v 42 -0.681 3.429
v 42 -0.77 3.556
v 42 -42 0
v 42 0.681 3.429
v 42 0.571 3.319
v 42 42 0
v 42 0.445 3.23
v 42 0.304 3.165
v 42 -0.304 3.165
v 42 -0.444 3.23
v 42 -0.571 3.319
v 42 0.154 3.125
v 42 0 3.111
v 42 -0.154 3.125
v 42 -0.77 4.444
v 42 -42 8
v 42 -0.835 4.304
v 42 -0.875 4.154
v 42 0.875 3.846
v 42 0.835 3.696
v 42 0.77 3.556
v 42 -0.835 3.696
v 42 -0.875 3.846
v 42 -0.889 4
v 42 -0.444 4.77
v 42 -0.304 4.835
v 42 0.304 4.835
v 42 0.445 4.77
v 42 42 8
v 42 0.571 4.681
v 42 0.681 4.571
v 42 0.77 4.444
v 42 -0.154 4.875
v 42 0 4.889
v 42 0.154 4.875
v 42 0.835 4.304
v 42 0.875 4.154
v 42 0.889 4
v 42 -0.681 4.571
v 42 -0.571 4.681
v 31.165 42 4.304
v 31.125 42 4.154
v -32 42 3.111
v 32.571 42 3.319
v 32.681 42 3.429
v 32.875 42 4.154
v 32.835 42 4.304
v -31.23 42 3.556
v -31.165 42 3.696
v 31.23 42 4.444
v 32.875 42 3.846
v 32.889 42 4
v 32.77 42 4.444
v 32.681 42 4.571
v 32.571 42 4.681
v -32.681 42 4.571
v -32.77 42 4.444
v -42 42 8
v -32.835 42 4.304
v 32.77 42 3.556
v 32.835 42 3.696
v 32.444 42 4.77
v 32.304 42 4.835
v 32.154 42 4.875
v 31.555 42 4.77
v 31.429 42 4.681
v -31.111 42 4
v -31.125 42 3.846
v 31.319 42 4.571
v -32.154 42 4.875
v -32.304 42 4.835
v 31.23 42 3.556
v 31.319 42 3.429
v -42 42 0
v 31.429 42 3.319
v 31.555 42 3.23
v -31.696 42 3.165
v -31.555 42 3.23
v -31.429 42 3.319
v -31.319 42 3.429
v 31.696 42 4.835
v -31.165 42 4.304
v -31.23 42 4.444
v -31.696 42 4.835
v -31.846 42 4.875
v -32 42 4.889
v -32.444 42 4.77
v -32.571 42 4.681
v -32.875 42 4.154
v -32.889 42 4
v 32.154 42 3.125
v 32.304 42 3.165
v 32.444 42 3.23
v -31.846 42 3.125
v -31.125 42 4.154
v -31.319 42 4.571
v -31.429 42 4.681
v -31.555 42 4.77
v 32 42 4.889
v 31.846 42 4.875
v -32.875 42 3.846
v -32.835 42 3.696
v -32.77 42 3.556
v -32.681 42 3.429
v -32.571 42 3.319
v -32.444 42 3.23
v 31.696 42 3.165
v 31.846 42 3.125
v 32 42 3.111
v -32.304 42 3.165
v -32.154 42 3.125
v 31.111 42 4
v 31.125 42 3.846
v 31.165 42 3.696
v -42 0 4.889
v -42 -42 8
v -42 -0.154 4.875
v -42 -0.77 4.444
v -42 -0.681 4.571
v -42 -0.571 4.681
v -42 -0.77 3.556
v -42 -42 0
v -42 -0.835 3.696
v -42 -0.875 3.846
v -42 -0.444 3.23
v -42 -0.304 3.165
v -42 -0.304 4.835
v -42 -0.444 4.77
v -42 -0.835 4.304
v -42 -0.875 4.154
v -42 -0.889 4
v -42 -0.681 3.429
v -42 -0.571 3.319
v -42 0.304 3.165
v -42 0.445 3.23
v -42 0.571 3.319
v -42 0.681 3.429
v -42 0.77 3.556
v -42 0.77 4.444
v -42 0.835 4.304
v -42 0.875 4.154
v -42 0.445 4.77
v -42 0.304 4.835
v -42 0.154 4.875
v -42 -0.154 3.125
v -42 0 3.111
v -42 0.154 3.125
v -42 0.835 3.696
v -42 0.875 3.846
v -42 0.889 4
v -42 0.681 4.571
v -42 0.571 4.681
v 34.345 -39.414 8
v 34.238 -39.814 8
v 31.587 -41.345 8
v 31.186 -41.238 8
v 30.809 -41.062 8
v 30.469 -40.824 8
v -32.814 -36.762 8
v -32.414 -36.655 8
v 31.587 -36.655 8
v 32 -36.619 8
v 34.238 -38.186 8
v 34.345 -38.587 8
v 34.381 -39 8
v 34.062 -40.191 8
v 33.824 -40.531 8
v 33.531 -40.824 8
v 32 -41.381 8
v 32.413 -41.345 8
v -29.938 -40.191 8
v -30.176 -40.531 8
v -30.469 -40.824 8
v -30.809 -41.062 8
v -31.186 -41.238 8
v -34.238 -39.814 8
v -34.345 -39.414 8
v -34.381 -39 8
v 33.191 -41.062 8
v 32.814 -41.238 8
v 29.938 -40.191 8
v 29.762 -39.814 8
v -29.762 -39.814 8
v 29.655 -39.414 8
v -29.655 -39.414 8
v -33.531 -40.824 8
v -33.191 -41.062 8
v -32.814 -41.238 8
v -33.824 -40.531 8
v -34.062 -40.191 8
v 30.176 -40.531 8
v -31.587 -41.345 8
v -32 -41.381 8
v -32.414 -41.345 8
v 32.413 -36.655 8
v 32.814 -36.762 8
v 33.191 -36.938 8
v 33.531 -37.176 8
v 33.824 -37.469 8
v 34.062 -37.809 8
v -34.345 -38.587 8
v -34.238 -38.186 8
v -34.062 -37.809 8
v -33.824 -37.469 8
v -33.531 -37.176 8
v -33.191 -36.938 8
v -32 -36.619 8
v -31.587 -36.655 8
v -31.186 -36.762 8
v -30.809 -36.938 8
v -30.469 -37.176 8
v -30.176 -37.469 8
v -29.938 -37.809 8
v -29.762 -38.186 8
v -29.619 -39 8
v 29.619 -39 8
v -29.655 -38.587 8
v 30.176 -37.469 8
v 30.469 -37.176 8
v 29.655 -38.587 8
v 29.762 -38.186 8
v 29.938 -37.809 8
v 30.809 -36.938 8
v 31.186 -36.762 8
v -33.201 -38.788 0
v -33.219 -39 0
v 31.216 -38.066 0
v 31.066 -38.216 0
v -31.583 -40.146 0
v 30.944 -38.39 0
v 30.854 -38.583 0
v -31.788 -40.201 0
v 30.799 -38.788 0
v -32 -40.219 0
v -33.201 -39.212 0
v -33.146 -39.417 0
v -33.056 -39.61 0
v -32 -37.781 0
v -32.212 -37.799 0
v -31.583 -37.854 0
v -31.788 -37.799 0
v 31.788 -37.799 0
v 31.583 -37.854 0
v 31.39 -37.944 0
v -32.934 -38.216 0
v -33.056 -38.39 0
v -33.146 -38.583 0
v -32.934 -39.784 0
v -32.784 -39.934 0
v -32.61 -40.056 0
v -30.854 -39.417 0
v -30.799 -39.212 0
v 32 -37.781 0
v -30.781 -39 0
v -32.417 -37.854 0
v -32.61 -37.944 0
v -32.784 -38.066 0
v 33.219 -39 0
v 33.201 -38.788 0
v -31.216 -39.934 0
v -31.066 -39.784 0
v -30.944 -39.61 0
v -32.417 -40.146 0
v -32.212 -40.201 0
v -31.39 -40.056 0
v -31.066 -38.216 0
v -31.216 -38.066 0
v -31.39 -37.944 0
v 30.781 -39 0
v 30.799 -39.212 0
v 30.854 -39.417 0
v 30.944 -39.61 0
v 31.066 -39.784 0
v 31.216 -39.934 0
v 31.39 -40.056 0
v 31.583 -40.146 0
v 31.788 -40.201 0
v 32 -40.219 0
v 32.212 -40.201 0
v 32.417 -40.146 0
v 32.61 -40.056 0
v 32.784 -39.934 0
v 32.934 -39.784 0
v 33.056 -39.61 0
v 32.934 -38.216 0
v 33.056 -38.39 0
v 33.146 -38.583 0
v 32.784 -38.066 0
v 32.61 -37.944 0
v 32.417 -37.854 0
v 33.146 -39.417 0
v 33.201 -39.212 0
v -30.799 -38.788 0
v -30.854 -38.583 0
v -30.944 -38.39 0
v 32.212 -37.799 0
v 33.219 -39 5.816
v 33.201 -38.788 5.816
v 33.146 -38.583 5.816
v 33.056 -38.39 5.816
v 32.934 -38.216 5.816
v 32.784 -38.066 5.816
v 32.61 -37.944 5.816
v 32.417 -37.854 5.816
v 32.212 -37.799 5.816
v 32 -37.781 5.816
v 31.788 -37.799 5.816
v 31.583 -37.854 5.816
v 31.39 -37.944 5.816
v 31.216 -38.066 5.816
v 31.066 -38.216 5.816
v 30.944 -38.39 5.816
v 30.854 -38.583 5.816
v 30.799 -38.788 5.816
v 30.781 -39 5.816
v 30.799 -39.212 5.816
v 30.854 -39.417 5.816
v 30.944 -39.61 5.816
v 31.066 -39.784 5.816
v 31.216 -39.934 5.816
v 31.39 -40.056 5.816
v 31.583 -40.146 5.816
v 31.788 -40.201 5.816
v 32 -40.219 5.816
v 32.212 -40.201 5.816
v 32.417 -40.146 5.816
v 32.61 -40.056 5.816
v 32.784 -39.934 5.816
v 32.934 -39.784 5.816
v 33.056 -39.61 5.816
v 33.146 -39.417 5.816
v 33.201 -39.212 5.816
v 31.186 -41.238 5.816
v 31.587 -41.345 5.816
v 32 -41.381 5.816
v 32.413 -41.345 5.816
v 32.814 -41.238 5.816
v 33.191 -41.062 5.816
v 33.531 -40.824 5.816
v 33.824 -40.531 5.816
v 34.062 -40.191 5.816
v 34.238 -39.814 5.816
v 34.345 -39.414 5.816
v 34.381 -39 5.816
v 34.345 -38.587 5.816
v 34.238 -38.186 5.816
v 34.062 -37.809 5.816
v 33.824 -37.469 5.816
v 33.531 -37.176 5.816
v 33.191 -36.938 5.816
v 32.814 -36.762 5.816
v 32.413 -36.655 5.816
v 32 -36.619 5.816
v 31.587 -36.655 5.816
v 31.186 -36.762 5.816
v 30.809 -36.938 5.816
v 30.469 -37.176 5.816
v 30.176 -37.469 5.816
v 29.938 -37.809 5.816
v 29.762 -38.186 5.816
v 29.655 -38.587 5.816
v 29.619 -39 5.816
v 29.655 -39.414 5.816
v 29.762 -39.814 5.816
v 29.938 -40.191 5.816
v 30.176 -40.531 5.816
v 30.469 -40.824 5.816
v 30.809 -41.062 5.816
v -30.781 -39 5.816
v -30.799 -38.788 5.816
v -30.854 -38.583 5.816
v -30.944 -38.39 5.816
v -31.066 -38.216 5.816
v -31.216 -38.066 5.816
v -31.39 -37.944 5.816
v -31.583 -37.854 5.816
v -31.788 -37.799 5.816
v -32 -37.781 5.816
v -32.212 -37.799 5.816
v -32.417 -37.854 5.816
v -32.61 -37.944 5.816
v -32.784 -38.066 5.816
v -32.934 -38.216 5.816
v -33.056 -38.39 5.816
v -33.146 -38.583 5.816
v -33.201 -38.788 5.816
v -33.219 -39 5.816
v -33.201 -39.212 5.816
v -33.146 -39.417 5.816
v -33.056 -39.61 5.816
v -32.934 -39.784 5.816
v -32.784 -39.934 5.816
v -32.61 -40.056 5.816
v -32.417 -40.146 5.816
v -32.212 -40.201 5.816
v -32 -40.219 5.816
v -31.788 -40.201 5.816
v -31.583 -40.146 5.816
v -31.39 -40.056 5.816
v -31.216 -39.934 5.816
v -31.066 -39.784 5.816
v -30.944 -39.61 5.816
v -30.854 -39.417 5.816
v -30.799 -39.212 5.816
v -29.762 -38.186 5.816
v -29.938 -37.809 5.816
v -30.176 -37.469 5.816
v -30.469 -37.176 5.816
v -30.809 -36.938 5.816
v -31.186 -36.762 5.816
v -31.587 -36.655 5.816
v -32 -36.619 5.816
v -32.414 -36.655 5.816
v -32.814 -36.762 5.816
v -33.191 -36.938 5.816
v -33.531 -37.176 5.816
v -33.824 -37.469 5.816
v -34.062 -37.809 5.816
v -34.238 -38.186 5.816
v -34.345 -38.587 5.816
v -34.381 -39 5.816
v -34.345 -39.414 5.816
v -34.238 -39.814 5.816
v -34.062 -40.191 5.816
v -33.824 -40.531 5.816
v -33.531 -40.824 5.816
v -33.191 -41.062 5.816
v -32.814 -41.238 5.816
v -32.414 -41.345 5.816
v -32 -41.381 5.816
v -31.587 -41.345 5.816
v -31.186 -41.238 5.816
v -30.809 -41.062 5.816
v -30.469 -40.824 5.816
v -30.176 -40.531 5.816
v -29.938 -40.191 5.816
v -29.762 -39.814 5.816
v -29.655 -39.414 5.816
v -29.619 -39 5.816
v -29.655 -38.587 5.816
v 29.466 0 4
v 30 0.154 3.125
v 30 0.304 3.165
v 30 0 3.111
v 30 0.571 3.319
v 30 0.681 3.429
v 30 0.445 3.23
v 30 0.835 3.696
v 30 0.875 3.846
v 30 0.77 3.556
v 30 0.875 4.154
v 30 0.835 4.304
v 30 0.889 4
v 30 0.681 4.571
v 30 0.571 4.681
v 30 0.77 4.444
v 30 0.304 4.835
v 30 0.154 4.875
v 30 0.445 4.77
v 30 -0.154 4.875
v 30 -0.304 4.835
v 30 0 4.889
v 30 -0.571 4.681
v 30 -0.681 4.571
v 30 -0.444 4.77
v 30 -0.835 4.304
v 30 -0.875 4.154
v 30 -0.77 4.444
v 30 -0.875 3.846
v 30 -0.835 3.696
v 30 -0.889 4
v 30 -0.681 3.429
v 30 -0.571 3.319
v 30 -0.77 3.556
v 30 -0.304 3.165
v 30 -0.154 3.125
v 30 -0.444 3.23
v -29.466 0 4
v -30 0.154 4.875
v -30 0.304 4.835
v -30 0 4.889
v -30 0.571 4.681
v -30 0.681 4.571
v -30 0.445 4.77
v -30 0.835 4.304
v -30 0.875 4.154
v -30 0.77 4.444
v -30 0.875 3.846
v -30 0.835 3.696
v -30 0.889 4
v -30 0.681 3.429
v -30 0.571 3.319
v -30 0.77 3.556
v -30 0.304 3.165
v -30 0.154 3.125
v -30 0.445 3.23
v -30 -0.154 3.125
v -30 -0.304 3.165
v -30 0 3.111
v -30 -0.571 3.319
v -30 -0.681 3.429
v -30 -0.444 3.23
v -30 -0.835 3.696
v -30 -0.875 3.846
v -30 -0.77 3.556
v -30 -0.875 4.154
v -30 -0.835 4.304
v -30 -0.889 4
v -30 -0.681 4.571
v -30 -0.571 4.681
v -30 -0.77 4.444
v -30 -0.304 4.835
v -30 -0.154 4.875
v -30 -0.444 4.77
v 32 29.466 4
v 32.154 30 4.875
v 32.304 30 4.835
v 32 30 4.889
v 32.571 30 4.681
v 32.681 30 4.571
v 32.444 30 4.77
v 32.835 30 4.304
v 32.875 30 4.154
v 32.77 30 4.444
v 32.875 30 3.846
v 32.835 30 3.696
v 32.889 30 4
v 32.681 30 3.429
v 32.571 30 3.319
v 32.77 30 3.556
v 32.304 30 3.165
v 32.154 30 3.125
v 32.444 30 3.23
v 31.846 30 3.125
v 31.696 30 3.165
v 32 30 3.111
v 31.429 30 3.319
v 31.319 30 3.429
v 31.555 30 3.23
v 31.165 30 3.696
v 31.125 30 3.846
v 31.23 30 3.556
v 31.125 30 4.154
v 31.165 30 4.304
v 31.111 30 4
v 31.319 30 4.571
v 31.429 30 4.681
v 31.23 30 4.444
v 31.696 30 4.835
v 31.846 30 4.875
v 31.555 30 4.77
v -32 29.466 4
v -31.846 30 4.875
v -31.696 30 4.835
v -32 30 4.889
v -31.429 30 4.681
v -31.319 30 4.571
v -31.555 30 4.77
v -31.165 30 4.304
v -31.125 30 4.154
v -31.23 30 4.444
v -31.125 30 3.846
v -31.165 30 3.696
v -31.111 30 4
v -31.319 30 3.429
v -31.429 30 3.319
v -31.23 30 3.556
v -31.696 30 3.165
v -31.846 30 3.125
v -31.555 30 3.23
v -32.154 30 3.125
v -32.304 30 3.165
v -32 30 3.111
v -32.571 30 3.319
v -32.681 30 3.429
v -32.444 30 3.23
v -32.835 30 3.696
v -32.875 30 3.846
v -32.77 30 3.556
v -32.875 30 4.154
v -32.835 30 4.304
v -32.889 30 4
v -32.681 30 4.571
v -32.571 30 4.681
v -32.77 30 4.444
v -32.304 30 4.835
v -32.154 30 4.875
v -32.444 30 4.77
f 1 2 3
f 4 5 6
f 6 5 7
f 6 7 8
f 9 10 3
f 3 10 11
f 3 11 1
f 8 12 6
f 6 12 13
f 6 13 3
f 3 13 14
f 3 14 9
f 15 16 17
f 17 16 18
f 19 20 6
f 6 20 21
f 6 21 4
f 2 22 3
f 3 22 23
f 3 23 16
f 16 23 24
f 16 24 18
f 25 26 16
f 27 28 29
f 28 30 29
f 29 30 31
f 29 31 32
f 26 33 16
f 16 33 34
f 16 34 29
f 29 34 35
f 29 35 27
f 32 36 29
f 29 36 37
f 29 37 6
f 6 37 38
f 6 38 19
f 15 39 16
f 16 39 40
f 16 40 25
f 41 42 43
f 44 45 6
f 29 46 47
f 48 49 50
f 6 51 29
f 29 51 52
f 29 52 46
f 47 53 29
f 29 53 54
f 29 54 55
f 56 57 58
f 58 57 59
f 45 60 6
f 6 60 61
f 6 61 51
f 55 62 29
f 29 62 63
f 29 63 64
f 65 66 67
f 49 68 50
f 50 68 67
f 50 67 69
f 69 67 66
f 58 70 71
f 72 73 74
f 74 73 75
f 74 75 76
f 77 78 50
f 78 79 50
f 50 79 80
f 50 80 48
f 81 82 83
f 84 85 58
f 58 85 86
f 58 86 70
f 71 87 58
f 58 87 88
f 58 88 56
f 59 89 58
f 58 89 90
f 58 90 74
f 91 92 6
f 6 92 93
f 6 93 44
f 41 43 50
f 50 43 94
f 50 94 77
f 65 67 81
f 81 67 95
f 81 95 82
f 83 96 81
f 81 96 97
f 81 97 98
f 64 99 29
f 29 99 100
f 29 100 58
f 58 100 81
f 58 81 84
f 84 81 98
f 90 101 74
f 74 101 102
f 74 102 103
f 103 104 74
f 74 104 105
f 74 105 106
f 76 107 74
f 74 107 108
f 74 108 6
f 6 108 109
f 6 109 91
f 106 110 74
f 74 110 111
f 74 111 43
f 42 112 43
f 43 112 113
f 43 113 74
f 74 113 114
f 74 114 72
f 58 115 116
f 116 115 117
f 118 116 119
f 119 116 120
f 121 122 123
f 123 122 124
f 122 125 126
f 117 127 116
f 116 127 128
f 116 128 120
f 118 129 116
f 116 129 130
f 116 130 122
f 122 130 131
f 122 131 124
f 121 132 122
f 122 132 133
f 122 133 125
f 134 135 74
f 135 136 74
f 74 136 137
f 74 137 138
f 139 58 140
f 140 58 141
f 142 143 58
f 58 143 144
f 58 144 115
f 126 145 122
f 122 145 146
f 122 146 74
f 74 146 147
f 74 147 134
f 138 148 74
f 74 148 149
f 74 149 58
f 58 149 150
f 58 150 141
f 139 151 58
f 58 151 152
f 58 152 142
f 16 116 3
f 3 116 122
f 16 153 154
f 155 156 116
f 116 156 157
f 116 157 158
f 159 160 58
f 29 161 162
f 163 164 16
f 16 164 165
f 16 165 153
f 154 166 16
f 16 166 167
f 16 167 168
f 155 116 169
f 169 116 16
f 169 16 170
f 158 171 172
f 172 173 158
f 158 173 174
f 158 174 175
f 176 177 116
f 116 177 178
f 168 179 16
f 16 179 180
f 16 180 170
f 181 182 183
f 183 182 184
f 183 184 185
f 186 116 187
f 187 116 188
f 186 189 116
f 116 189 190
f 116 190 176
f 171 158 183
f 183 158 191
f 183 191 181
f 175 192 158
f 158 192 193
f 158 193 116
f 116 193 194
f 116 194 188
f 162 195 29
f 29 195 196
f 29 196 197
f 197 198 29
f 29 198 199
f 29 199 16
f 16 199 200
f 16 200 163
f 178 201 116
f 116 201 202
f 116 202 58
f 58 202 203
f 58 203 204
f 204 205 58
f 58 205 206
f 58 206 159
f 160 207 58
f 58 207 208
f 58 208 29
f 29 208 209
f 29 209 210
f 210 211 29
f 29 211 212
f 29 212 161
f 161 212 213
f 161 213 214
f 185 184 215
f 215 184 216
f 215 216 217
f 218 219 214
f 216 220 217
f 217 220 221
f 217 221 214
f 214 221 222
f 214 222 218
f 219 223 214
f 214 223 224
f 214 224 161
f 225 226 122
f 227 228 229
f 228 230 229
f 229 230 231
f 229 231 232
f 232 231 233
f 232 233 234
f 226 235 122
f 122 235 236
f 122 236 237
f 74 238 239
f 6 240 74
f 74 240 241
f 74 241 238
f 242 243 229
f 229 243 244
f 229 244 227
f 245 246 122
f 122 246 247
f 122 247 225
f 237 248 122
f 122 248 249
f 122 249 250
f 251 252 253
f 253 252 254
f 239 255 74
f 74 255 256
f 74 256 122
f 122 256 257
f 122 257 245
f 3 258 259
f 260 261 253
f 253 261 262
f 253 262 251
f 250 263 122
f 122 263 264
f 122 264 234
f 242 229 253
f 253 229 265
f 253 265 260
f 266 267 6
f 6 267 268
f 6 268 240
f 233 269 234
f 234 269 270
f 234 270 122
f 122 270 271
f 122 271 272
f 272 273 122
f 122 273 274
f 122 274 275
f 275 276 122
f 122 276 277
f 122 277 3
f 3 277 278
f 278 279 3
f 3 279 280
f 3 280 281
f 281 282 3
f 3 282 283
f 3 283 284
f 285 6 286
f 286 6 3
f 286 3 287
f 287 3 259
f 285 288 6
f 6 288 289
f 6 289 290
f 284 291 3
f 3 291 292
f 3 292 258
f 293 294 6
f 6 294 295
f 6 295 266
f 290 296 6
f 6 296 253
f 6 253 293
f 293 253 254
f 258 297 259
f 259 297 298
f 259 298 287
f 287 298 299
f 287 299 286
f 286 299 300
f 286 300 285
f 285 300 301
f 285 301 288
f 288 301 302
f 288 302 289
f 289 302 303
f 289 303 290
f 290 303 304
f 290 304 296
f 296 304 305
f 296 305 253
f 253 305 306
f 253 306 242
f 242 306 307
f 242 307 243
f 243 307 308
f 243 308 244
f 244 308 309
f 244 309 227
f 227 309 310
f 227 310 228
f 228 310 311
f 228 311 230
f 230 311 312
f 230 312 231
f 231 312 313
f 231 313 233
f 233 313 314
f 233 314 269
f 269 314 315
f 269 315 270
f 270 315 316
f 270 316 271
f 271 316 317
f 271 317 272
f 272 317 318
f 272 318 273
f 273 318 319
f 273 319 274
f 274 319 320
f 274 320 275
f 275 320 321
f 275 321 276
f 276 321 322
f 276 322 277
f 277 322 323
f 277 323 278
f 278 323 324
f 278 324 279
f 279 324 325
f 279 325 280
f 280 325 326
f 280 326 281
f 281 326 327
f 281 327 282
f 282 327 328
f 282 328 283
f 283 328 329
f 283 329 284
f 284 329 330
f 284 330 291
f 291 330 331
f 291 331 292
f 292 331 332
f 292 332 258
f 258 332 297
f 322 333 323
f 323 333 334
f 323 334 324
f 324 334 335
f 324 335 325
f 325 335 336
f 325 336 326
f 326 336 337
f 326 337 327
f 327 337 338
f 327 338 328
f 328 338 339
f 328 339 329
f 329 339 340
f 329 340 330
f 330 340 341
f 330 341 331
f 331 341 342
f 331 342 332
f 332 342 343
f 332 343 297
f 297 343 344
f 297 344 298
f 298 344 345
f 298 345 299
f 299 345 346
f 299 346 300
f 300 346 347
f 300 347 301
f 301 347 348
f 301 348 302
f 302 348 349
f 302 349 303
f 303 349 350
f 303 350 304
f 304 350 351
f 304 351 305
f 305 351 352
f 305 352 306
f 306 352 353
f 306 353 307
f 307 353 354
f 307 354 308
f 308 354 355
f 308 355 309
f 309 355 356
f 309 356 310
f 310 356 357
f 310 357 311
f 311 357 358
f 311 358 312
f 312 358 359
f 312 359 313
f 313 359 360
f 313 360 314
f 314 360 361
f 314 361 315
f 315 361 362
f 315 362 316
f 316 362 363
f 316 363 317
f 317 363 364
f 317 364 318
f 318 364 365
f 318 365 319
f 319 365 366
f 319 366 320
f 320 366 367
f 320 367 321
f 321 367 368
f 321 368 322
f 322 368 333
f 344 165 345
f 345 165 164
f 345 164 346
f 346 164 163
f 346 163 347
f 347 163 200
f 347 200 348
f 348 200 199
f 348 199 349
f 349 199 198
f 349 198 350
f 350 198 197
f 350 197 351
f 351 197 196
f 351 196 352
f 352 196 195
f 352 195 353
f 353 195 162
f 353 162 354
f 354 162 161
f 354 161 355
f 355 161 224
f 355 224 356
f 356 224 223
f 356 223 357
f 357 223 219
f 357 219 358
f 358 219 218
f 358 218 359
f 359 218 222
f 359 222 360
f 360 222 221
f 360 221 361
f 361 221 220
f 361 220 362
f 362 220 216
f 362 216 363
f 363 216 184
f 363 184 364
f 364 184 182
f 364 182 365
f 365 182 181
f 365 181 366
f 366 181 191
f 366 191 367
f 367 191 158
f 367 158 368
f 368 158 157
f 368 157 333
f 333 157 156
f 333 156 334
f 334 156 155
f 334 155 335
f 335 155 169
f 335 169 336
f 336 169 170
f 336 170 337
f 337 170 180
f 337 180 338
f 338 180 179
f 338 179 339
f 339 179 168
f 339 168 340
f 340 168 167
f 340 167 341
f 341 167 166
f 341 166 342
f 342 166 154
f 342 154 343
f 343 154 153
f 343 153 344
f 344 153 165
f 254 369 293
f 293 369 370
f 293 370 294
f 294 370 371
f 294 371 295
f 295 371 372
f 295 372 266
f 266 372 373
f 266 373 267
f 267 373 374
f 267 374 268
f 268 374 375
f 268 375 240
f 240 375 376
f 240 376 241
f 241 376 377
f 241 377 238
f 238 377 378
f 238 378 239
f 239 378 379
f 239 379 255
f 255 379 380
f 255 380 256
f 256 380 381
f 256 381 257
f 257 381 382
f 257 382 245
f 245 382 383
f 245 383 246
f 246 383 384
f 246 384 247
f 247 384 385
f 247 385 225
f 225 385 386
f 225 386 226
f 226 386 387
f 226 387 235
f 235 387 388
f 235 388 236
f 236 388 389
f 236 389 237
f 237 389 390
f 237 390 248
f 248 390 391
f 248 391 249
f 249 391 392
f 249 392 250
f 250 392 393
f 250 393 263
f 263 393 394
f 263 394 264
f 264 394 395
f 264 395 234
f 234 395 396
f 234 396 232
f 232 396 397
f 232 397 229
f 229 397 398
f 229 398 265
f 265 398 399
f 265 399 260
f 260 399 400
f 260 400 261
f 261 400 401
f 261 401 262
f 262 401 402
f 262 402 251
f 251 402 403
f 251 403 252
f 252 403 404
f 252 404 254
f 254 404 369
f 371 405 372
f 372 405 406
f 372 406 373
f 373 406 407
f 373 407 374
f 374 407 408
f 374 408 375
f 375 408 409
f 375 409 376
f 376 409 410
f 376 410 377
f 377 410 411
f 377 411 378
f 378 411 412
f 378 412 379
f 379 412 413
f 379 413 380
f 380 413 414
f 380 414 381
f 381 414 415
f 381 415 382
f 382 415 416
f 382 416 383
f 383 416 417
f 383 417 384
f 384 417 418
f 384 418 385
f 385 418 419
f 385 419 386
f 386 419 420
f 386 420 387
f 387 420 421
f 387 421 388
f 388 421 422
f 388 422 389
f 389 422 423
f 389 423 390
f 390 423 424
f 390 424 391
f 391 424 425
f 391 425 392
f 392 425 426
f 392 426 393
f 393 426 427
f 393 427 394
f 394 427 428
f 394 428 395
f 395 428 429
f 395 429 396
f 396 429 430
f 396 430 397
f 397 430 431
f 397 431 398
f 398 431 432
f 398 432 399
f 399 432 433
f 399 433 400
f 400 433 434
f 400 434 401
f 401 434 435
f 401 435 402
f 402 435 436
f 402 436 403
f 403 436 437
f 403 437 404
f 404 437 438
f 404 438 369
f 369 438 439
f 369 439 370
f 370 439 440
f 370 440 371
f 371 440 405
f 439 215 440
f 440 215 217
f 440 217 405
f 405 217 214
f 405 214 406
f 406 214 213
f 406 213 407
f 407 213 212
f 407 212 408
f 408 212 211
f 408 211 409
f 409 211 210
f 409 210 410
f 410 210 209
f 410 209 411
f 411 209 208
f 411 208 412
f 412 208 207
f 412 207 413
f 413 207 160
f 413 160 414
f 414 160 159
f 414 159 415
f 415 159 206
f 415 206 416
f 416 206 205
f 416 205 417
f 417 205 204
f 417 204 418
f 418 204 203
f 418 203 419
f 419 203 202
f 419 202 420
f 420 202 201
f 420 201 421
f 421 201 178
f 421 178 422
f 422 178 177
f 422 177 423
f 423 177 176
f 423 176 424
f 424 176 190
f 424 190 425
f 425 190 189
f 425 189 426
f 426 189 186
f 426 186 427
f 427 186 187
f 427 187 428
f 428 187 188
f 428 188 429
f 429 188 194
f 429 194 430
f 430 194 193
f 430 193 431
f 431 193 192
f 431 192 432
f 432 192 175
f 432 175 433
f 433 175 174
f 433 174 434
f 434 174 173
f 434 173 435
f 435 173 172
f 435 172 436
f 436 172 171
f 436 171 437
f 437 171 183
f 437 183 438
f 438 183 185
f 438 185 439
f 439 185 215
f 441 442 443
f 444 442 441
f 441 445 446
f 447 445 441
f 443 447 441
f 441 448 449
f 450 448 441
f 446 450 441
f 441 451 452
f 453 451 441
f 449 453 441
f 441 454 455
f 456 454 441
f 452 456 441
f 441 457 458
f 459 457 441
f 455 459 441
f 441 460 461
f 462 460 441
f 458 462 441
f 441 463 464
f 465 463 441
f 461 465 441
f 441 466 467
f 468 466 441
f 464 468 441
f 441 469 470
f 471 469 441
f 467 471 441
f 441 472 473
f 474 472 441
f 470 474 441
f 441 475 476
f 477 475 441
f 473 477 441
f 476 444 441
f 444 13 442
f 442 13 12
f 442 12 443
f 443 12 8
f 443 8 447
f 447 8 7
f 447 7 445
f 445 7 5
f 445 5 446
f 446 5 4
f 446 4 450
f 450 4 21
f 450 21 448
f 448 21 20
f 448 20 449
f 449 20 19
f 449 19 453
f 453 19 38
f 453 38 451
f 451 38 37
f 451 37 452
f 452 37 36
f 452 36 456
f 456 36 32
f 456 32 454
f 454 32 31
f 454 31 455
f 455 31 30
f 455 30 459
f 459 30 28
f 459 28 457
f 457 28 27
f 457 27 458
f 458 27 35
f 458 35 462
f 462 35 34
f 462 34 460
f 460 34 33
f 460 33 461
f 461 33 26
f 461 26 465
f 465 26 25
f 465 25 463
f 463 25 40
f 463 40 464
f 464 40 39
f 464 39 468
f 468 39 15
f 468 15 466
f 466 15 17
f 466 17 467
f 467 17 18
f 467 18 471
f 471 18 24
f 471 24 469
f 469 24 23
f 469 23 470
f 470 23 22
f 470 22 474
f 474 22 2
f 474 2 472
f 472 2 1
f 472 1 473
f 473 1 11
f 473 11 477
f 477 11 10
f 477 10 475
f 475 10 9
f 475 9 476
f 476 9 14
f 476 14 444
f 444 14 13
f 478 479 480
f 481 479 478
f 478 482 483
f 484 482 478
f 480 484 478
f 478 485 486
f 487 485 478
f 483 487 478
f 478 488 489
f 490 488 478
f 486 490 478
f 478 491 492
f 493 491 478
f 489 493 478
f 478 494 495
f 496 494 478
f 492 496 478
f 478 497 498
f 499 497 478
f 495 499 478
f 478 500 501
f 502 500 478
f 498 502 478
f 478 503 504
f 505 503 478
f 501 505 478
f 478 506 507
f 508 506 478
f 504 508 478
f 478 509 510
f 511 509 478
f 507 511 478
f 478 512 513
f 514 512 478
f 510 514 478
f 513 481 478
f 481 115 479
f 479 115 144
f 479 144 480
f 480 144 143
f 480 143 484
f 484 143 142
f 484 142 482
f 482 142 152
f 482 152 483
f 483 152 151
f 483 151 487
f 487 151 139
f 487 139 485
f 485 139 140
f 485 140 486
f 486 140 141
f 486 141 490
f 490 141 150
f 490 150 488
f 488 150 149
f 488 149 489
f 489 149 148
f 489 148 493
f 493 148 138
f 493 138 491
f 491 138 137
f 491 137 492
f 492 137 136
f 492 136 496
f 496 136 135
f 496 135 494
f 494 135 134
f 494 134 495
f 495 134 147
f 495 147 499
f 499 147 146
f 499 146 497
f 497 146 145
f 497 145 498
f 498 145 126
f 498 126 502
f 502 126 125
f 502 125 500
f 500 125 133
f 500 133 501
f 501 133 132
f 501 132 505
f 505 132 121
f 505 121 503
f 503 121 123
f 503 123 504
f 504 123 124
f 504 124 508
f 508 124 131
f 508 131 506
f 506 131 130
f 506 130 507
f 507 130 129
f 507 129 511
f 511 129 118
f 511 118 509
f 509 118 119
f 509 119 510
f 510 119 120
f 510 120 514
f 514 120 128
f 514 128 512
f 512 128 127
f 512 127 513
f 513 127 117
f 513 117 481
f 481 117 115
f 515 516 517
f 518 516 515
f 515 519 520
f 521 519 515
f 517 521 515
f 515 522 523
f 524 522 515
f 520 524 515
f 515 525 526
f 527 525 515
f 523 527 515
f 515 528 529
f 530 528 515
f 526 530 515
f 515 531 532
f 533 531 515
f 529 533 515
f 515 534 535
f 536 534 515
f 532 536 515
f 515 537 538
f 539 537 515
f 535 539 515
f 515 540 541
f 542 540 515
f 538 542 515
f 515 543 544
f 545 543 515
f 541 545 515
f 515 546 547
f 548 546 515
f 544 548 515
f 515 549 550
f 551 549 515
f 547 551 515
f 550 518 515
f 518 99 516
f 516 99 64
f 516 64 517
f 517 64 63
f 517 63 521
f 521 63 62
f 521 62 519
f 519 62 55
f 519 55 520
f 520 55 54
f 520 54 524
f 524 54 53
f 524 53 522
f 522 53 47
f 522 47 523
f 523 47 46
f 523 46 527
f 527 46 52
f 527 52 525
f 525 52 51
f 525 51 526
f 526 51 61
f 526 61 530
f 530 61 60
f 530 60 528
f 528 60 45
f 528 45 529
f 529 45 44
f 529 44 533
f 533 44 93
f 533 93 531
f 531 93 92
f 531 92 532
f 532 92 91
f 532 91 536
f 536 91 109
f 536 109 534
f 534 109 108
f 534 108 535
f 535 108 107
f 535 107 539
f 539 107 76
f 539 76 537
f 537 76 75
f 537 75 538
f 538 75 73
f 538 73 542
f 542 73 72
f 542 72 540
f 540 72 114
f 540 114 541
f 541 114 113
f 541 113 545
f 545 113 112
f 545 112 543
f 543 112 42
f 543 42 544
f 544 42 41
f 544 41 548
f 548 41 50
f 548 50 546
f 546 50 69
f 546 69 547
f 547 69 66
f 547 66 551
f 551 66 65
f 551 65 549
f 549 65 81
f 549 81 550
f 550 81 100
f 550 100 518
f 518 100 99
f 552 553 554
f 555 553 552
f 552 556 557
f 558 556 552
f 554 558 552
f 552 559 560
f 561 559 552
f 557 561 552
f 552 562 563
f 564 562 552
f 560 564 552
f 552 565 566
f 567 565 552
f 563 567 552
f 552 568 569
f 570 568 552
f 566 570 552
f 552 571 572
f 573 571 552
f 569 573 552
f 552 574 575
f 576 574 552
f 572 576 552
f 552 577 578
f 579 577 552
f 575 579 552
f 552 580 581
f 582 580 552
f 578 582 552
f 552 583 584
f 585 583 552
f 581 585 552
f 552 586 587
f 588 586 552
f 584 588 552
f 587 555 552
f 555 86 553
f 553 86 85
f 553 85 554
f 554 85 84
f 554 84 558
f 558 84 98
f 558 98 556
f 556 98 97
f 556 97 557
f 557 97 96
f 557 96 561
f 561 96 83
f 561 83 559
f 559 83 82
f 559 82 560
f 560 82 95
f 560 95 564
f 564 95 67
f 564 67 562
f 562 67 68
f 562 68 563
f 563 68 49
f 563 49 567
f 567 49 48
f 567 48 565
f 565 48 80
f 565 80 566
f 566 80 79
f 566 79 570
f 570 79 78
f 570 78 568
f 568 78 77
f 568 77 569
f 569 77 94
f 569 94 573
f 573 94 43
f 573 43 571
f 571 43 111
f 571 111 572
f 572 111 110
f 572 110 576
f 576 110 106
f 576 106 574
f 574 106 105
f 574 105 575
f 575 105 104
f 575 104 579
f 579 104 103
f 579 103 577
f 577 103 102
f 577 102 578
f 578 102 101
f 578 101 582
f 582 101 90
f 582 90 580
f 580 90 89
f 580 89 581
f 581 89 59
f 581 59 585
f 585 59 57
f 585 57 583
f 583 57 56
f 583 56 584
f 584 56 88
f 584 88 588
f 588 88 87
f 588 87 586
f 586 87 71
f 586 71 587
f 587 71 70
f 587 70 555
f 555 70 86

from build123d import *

# Parameters (mm, degrees)
SKETCH1_W                                      = 84
SKETCH1_H                                      = 84
BOSS_EXTRUDE1_DEPTH                            = 8
CBORE_FOR_2_SOCKET_HEAD_CAP_SCREW1_D           = 2.4384
CBORE_FOR_2_SOCKET_HEAD_CAP_SCREW1_DEPTH       = 8
CBORE_FOR_2_SOCKET_HEAD_CAP_SCREW1_CBORE_D     = 4.7625
CBORE_FOR_2_SOCKET_HEAD_CAP_SCREW1_CBORE_DEPTH = 2.1844
F_2_56_TAPPED_HOLE1_D                          = 1.778
F_2_56_TAPPED_HOLE1_DEPTH                      = 12
F_2_56_TAPPED_HOLE1_TIP                        = 0.53416509
F_2_56_TAPPED_HOLE2_D                          = 1.778
F_2_56_TAPPED_HOLE2_DEPTH                      = 12
F_2_56_TAPPED_HOLE2_TIP                        = 0.53416509
F_2_56_TAPPED_HOLE3_D                          = 1.778
F_2_56_TAPPED_HOLE3_DEPTH                      = 12
F_2_56_TAPPED_HOLE3_TIP                        = 0.53416509


with BuildPart() as part:
    # Sketch1 → Boss-Extrude1 (new body)
    with BuildSketch(Plane.XY):
        Rectangle(SKETCH1_W, SKETCH1_H)
    extrude(amount=BOSS_EXTRUDE1_DEPTH)

    # CBORE for #2 Socket Head Cap Screw1
    with Locations(Plane(origin=(-32, -39, 8), x_dir=(1, 0, 0), z_dir=(0, 0, 1))):
        with Locations((0, 0), (64, 0)):
            CounterBoreHole(CBORE_FOR_2_SOCKET_HEAD_CAP_SCREW1_D / 2, CBORE_FOR_2_SOCKET_HEAD_CAP_SCREW1_CBORE_D / 2, CBORE_FOR_2_SOCKET_HEAD_CAP_SCREW1_CBORE_DEPTH, depth=CBORE_FOR_2_SOCKET_HEAD_CAP_SCREW1_DEPTH)

    # #2-56 Tapped Hole1
    with Locations(Plane(origin=(42, 0, 4), x_dir=(0, 0, 1), z_dir=(1, 0, 0))):
        with Locations((0, 0)):
            Hole(F_2_56_TAPPED_HOLE1_D / 2, depth=F_2_56_TAPPED_HOLE1_DEPTH)
            with Locations((0, 0, -(F_2_56_TAPPED_HOLE1_DEPTH + F_2_56_TAPPED_HOLE1_TIP / 2))):  # 118° drill point
                Cone(0, F_2_56_TAPPED_HOLE1_D / 2, F_2_56_TAPPED_HOLE1_TIP, mode=Mode.SUBTRACT)

    # #2-56 Tapped Hole2
    with Locations(Plane(origin=(-42, 0, 4), x_dir=(0, 0, -1), z_dir=(-1, 0, 0))):
        with Locations((0, 0)):
            Hole(F_2_56_TAPPED_HOLE2_D / 2, depth=F_2_56_TAPPED_HOLE2_DEPTH)
            with Locations((0, 0, -(F_2_56_TAPPED_HOLE2_DEPTH + F_2_56_TAPPED_HOLE2_TIP / 2))):  # 118° drill point
                Cone(0, F_2_56_TAPPED_HOLE2_D / 2, F_2_56_TAPPED_HOLE2_TIP, mode=Mode.SUBTRACT)

    # #2-56 Tapped Hole3
    with Locations(Plane(origin=(-32, 42, 4), x_dir=(0, 0, 1), z_dir=(0, 1, 0))):
        with Locations((0, 0), (0, 64)):
            Hole(F_2_56_TAPPED_HOLE3_D / 2, depth=F_2_56_TAPPED_HOLE3_DEPTH)
            with Locations((0, 0, -(F_2_56_TAPPED_HOLE3_DEPTH + F_2_56_TAPPED_HOLE3_TIP / 2))):  # 118° drill point
                Cone(0, F_2_56_TAPPED_HOLE3_D / 2, F_2_56_TAPPED_HOLE3_TIP, mode=Mode.SUBTRACT)


solid = part.part
